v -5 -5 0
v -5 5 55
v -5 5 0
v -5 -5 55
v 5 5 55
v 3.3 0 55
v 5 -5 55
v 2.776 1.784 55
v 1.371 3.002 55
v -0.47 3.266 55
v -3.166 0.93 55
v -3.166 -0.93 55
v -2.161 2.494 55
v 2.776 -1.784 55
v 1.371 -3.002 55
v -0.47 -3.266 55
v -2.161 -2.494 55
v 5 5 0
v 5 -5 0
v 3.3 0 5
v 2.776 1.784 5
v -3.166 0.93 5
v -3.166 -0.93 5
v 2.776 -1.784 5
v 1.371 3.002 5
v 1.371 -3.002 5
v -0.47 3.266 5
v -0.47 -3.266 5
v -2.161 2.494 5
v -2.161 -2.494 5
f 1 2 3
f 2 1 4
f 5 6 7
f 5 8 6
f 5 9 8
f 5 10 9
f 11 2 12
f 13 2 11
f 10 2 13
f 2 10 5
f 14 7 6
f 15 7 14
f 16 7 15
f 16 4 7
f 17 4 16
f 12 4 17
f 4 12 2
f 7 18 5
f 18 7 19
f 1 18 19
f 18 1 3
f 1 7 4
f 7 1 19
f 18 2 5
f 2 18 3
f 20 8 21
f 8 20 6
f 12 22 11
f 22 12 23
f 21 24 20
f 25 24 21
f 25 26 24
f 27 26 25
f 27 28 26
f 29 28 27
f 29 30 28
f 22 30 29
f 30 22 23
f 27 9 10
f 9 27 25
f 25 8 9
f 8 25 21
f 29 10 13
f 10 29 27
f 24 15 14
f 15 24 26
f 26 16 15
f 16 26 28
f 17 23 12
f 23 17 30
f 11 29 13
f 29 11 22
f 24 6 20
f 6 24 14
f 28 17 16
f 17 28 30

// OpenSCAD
 module outline() {
    translate([-5, -5,0]) cube([10,10,55], [0,0]);
 }
 
 module inside(){
    translate([0, 0, 5]) cylinder(51,3.3,3.3, [0,0]);
 }
 
 difference(){
     outline();
     inside();
 }
